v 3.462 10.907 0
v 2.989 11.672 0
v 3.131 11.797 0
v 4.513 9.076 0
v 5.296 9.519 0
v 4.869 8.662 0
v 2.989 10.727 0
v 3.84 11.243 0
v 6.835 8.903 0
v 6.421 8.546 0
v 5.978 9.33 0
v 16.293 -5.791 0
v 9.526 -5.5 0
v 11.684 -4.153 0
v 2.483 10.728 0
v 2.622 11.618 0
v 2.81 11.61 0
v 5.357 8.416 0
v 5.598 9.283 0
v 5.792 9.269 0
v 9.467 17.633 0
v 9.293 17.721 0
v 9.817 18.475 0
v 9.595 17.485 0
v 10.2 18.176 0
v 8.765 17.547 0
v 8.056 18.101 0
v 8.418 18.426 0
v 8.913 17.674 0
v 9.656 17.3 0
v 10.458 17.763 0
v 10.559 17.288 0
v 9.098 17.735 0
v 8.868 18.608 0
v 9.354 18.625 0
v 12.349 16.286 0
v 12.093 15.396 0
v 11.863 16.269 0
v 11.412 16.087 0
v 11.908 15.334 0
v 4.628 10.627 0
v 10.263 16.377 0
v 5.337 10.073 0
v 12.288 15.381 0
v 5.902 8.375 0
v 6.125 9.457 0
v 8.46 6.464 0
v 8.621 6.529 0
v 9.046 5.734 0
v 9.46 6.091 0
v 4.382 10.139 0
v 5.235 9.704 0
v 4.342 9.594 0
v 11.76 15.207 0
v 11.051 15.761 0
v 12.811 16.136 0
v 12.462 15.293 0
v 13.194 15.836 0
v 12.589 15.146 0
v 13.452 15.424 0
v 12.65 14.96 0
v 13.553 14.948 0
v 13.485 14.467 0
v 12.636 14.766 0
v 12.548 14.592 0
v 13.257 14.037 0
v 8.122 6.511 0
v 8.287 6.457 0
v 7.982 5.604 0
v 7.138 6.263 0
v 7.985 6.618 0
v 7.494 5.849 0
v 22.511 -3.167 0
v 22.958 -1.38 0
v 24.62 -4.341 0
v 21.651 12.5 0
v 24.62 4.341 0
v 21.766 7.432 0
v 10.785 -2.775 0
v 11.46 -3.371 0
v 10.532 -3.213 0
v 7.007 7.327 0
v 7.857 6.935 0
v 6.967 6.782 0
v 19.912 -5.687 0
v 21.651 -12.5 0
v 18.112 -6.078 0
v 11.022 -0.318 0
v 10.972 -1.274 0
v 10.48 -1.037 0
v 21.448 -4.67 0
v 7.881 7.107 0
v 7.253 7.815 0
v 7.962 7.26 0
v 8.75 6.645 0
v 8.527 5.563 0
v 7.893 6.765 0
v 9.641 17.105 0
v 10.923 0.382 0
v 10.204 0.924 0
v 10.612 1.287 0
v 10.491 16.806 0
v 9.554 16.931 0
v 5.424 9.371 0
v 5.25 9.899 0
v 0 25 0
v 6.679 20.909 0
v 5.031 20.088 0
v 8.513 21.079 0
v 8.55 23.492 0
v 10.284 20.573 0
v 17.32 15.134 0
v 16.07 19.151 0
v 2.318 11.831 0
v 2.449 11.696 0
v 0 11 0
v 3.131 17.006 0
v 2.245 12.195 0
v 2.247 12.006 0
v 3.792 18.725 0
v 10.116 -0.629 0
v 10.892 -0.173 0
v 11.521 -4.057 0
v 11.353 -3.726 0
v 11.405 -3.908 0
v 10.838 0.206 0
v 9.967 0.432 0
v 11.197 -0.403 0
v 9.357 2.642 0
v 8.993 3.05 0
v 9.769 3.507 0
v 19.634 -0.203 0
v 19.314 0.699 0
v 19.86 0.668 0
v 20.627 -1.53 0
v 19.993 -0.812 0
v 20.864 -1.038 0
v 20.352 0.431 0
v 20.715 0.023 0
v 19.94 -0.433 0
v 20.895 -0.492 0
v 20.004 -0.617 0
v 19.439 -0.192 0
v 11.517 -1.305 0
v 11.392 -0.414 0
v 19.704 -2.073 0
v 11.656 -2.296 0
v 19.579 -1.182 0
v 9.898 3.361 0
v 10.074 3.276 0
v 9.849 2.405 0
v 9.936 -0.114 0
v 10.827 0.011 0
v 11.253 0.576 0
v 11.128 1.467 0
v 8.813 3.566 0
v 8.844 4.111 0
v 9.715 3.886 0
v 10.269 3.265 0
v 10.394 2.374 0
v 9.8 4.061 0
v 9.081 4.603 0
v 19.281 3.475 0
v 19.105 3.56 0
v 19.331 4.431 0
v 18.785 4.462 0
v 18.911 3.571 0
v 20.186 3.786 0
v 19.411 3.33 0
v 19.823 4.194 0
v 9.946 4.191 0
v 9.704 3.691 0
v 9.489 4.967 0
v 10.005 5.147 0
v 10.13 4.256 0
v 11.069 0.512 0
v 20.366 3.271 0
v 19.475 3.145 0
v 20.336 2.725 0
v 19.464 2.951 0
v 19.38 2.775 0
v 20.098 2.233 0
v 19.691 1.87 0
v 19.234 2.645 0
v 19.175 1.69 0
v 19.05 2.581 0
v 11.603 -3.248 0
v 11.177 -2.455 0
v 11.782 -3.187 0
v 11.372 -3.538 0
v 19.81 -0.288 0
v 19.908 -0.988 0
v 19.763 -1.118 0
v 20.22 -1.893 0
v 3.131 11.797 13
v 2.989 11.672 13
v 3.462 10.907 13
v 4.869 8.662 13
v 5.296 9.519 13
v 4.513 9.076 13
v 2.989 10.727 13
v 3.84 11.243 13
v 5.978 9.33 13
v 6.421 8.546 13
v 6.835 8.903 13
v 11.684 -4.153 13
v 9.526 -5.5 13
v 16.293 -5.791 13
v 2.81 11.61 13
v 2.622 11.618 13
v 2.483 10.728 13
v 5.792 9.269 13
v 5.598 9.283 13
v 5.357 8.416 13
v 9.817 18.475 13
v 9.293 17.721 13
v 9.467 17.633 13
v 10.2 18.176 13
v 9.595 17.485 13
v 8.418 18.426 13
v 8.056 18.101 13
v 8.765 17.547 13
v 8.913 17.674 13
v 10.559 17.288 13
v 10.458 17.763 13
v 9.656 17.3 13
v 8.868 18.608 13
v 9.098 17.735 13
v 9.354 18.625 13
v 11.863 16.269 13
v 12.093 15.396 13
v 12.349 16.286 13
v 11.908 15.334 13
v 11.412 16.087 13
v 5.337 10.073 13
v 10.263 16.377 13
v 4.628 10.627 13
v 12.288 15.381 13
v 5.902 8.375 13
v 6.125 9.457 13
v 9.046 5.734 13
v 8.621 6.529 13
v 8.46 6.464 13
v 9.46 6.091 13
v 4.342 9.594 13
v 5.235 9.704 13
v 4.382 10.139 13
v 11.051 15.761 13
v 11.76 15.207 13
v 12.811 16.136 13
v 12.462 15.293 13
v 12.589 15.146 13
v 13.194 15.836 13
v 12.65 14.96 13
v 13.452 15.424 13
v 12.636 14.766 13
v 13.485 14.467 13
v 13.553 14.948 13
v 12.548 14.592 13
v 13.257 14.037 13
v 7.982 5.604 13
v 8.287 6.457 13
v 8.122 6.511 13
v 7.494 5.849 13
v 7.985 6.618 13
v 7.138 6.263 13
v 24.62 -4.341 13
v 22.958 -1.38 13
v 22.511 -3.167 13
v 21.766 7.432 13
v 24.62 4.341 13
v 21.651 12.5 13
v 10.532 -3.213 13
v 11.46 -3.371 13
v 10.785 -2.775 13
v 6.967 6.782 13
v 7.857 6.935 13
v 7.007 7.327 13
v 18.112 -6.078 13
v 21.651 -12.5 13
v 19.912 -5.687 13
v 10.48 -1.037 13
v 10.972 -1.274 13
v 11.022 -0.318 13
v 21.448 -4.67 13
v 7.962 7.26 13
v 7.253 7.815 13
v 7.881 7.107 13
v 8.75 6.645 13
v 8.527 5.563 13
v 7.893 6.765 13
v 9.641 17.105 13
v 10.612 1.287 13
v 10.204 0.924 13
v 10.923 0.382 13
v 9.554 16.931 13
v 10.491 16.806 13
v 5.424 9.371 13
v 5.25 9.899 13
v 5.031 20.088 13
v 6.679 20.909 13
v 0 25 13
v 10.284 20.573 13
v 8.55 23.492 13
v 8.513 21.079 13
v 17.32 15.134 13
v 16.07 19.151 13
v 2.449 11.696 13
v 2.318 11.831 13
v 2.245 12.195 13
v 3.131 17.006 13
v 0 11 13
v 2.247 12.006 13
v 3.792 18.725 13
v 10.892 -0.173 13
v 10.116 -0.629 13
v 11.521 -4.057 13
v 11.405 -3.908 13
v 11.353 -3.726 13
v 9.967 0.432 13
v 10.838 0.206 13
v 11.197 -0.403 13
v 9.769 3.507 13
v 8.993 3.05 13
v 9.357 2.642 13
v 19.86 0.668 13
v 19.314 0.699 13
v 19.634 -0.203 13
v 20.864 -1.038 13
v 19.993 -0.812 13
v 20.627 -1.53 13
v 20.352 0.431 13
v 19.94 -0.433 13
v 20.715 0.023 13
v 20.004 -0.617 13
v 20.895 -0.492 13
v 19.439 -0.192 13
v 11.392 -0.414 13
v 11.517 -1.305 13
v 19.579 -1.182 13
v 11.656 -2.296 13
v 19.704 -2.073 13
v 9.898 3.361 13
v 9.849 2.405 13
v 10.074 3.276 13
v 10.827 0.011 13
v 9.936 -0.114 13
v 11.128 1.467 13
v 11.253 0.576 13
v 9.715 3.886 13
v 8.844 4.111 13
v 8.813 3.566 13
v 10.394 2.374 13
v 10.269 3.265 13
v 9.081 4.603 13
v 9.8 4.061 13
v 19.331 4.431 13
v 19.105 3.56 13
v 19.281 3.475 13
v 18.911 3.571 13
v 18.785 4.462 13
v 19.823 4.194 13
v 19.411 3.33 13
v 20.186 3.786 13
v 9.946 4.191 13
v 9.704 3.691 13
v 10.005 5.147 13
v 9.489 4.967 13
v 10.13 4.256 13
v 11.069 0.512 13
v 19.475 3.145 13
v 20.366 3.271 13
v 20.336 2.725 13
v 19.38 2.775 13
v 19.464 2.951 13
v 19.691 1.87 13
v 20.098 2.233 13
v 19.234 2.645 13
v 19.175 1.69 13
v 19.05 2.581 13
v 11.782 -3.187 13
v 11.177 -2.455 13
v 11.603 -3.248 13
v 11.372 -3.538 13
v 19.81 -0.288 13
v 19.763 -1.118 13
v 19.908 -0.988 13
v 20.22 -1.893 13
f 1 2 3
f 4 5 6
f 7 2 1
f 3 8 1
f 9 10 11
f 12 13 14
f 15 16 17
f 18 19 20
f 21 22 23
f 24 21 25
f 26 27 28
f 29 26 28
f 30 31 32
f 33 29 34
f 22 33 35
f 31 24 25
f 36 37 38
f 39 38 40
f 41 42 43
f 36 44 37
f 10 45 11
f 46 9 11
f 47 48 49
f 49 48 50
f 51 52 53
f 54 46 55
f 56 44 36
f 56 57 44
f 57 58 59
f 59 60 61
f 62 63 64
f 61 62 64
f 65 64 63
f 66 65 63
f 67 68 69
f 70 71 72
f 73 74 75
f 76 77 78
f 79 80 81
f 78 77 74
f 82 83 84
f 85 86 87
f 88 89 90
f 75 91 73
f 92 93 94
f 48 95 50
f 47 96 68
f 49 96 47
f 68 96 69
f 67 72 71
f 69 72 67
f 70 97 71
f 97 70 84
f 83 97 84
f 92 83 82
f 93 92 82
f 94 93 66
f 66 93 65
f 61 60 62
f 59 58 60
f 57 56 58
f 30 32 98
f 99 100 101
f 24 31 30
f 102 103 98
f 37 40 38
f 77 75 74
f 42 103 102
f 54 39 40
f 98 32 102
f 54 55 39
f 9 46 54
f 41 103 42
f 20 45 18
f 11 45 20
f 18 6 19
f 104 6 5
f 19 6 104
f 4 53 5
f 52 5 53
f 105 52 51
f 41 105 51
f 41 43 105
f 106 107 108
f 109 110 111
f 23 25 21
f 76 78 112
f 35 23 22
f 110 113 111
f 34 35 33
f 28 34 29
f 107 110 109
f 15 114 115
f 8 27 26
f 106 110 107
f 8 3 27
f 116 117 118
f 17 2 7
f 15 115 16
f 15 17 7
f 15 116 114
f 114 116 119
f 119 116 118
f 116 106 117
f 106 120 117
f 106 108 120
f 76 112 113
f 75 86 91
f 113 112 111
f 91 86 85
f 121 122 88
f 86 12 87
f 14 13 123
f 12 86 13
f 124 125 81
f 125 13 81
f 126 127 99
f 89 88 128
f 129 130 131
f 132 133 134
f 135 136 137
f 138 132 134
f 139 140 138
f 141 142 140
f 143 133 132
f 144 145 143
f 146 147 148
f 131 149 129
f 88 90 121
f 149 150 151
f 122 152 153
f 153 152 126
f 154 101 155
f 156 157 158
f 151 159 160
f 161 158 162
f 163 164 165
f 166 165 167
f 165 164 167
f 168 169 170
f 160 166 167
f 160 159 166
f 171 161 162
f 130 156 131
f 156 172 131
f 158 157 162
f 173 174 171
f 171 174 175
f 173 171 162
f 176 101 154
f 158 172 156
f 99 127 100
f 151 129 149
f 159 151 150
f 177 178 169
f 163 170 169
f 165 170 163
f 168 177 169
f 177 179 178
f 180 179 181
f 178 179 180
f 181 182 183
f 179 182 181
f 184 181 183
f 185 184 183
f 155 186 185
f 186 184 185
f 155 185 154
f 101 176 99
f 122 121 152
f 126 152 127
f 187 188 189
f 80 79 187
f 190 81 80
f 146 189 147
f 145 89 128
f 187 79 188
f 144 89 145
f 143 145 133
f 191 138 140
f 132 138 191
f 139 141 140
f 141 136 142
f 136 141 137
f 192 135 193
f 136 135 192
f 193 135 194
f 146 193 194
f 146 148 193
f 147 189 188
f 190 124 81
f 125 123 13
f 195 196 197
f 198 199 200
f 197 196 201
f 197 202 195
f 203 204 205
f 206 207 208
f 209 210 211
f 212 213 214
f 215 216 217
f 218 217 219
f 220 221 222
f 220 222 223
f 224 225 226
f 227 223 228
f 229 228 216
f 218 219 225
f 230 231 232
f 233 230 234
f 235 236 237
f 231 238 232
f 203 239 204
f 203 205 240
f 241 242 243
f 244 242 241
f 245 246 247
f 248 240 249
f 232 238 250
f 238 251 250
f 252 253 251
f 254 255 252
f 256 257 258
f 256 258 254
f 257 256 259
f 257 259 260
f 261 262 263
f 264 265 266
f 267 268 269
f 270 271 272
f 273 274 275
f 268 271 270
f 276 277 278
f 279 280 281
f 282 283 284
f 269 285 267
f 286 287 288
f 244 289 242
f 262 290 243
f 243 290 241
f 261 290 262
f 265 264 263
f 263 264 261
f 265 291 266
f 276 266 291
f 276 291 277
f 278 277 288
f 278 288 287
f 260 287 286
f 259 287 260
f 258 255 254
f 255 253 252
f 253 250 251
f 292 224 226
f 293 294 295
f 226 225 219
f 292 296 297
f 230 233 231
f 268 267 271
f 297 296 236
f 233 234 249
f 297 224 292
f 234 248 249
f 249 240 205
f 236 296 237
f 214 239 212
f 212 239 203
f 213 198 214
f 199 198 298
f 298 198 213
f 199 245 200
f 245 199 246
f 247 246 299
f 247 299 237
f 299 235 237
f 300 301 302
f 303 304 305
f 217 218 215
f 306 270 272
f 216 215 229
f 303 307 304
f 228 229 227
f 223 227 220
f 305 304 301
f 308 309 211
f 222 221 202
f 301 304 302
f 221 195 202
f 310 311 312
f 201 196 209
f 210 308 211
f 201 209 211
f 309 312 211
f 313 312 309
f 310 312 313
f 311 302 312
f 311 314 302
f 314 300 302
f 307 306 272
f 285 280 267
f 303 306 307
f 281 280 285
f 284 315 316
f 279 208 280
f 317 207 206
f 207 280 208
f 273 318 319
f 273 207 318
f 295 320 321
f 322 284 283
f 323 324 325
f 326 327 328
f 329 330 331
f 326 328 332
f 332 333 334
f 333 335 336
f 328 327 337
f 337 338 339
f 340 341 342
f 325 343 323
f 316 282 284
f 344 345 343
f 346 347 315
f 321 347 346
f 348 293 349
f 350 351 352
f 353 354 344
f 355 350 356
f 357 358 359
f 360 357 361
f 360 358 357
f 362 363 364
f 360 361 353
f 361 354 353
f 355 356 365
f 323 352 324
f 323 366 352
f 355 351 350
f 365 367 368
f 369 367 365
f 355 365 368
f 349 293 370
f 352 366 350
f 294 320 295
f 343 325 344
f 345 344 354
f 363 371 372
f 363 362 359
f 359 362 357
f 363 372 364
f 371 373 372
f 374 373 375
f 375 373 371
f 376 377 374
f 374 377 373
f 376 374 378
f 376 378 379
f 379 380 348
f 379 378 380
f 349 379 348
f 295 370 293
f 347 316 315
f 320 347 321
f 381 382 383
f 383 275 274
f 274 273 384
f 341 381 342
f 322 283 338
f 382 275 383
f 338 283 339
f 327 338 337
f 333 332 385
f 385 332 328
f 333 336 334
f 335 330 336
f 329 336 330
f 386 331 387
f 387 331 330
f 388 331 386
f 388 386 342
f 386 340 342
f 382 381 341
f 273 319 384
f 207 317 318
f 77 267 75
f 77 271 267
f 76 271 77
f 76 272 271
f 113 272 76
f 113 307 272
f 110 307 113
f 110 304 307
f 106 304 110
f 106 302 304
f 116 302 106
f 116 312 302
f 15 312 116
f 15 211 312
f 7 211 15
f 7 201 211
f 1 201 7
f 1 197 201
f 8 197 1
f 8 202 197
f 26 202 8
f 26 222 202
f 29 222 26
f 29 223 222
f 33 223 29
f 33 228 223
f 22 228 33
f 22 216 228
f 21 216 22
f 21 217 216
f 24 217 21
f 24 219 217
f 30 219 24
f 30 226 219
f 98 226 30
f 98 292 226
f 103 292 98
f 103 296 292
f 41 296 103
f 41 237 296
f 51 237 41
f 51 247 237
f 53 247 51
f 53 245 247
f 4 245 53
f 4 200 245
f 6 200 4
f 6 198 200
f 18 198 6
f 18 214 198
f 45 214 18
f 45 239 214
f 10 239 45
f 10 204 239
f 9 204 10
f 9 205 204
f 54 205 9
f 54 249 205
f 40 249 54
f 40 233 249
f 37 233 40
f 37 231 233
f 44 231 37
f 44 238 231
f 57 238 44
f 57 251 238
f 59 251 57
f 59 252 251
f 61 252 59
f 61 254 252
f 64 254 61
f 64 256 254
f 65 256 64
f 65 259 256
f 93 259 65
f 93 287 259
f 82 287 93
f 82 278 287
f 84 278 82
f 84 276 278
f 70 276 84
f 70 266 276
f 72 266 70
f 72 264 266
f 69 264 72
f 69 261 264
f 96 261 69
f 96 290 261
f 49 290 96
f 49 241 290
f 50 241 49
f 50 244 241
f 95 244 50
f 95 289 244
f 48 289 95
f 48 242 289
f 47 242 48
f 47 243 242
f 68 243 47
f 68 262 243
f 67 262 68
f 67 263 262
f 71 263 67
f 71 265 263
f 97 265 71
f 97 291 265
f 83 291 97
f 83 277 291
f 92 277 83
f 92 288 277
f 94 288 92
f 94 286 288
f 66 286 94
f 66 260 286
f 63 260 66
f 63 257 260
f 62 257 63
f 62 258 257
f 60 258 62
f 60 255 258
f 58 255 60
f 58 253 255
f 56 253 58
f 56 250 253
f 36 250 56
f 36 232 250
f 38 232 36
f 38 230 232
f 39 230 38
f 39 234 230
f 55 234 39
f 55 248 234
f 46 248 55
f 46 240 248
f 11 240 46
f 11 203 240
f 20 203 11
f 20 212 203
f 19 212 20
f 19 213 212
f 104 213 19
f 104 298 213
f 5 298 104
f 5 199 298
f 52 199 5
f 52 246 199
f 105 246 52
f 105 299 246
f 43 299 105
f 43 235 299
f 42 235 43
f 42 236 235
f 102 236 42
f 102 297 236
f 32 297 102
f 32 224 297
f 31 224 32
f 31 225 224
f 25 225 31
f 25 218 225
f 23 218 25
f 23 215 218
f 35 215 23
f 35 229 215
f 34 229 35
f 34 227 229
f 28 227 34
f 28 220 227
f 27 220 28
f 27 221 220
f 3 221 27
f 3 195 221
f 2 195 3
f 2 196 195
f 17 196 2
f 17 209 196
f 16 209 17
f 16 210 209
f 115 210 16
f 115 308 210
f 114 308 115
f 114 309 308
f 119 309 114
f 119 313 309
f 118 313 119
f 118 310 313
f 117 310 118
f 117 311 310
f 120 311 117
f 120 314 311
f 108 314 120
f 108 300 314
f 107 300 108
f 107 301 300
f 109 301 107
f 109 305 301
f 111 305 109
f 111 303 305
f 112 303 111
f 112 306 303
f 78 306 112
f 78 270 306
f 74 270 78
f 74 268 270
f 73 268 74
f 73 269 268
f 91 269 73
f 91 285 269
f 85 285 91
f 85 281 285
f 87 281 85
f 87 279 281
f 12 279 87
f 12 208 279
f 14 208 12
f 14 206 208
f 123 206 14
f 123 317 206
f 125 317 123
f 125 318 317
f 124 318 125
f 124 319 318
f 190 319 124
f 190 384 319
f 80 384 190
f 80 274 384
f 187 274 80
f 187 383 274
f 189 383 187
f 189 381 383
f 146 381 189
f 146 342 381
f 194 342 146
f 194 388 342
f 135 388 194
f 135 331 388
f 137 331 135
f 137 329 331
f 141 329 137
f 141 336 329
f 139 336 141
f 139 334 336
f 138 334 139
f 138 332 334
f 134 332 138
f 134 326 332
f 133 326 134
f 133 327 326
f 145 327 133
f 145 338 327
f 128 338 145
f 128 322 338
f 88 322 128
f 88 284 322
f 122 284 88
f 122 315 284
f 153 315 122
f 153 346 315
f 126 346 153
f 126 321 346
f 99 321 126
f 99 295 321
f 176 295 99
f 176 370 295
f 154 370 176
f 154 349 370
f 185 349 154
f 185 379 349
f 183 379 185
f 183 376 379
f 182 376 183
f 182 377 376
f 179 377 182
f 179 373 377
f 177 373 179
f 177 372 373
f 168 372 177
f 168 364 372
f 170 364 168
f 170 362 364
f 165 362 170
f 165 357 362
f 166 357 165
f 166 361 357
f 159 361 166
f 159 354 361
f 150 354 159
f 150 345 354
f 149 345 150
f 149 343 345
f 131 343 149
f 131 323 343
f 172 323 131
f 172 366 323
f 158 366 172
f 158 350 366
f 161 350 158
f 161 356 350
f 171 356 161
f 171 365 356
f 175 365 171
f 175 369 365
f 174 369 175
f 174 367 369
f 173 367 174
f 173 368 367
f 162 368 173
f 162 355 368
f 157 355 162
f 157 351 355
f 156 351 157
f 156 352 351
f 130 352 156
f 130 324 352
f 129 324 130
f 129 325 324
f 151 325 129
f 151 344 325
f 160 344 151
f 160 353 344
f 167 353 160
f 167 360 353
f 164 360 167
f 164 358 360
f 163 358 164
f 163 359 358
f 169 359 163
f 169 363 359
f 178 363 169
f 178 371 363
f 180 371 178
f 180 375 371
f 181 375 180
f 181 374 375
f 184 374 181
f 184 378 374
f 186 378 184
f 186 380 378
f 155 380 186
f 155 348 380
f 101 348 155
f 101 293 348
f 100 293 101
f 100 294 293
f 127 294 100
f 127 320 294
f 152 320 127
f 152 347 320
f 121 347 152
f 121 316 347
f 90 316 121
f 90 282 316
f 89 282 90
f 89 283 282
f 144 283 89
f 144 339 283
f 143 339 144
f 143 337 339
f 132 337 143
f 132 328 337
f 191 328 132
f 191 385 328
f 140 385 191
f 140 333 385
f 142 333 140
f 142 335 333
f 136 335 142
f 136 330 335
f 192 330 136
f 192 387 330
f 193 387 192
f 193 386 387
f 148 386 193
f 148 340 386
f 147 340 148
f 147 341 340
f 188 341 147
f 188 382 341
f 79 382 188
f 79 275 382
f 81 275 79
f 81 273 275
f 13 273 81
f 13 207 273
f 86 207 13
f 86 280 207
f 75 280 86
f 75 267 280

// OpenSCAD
// Generated by Parametrix
ca_haxis_guidance_faceProfile_0 = [ [ 0.0000, 11.0000 ],[ 2.4835, 10.7276 ],[ 2.9892, 10.7274 ],[ 3.4620, 10.9069 ],[ 3.8402, 11.2426 ],[ 8.7655, 17.5467 ],[ 8.9132, 17.6740 ],[ 9.0985, 17.7351 ],[ 9.2931, 17.7207 ],[ 9.4673, 17.6328 ],[ 9.5946, 17.4850 ],[ 9.6557, 17.2998 ],[ 9.6413, 17.1052 ],[ 9.5535, 16.9310 ],[ 4.6282, 10.6269 ],[ 4.3823, 10.1391 ],[ 4.3418, 9.5944 ],[ 4.5129, 9.0756 ],[ 4.8695, 8.6618 ],[ 5.3573, 8.4159 ],[ 5.9020, 8.3754 ],[ 6.4208, 8.5465 ],[ 6.8346, 8.9031 ],[ 11.7599, 15.2072 ],[ 11.9077, 15.3345 ],[ 12.0930, 15.3956 ],[ 12.2875, 15.3811 ],[ 12.4617, 15.2933 ],[ 12.5891, 15.1455 ],[ 12.6502, 14.9603 ],[ 12.6357, 14.7657 ],[ 12.5479, 14.5915 ],[ 7.2532, 7.8146 ],[ 7.0073, 7.3268 ],[ 6.9669, 6.7821 ],[ 7.1379, 6.2633 ],[ 7.4945, 5.8495 ],[ 7.9823, 5.6036 ],[ 8.5270, 5.5631 ],[ 9.0458, 5.7342 ],[ 9.4596, 6.0907 ],[ 8.7504, 6.6448 ],[ 8.6214, 6.5287 ],[ 8.4604, 6.4636 ],[ 8.2868, 6.4575 ],[ 8.1217, 6.5112 ],[ 7.9849, 6.6181 ],[ 7.8928, 6.7654 ],[ 7.8567, 6.9352 ],[ 7.8809, 7.1072 ],[ 7.9624, 7.2605 ],[ 13.2571, 14.0374 ],[ 13.4854, 14.4667 ],[ 13.5530, 14.9482 ],[ 13.4520, 15.4238 ],[ 13.1943, 15.8361 ],[ 12.8112, 16.1355 ],[ 12.3487, 16.2857 ],[ 11.8628, 16.2687 ],[ 11.4120, 16.0866 ],[ 11.0507, 15.7613 ],[ 6.1254, 9.4572 ],[ 5.9776, 9.3298 ],[ 5.7923, 9.2687 ],[ 5.5978, 9.2832 ],[ 5.4236, 9.3710 ],[ 5.2962, 9.5188 ],[ 5.2351, 9.7041 ],[ 5.2496, 9.8986 ],[ 5.3374, 10.0728 ],[ 10.2627, 16.3769 ],[ 10.4909, 16.8062 ],[ 10.5586, 17.2877 ],[ 10.4575, 17.7633 ],[ 10.1999, 18.1756 ],[ 9.8167, 18.4750 ],[ 9.3543, 18.6252 ],[ 8.8684, 18.6082 ],[ 8.4176, 18.4261 ],[ 8.0562, 18.1008 ],[ 3.1310, 11.7967 ],[ 2.9886, 11.6725 ],[ 2.8104, 11.6099 ],[ 2.6217, 11.6180 ],[ 2.4494, 11.6955 ],[ 2.3182, 11.8313 ],[ 2.2467, 12.0062 ],[ 2.2452, 12.1950 ],[ 3.1309, 17.0058 ],[ 3.7923, 18.7247 ],[ 5.0310, 20.0875 ],[ 6.6792, 20.9094 ],[ 8.5131, 21.0788 ],[ 10.2839, 20.5728 ],[ 17.3196, 15.1338 ],[ 21.7660, 7.4323 ],[ 22.9585, -1.3803 ],[ 22.5113, -3.1669 ],[ 21.4476, -4.6704 ],[ 19.9118, -5.6867 ],[ 18.1122, -6.0781 ],[ 16.2929, -5.7915 ],[ 11.6838, -4.1531 ],[ 11.5210, -4.0574 ],[ 11.4053, -3.9081 ],[ 11.3533, -3.7265 ],[ 11.3723, -3.5385 ],[ 11.4597, -3.3711 ],[ 11.6030, -3.2480 ],[ 11.7817, -3.1869 ],[ 19.7038, -2.0735 ],[ 20.2196, -1.8934 ],[ 20.6271, -1.5296 ],[ 20.8644, -1.0376 ],[ 20.8954, -0.4923 ],[ 20.7153, 0.0235 ],[ 20.3515, 0.4310 ],[ 19.8595, 0.6683 ],[ 19.3142, 0.6993 ],[ 11.3920, -0.4141 ],[ 11.1972, -0.4030 ],[ 11.0215, -0.3183 ],[ 10.8916, -0.1727 ],[ 10.8273, 0.0114 ],[ 10.8384, 0.2062 ],[ 10.9231, 0.3819 ],[ 11.0687, 0.5118 ],[ 11.2528, 0.5762 ],[ 19.1750, 1.6895 ],[ 19.6907, 1.8696 ],[ 20.0982, 2.2334 ],[ 20.3355, 2.7254 ],[ 20.3665, 3.2708 ],[ 20.1864, 3.7865 ],[ 19.8227, 4.1940 ],[ 19.3307, 4.4313 ],[ 18.7853, 4.4623 ],[ 10.2690, 3.2654 ],[ 10.0742, 3.2765 ],[ 9.8985, 3.3612 ],[ 9.7686, 3.5068 ],[ 9.7043, 3.6910 ],[ 9.7153, 3.8857 ],[ 9.8001, 4.0615 ],[ 9.9456, 4.1914 ],[ 10.1298, 4.2557 ],[ 10.0046, 5.1469 ],[ 9.4889, 4.9668 ],[ 9.0813, 4.6031 ],[ 8.8440, 4.1111 ],[ 8.8130, 3.5657 ],[ 8.9931, 3.0500 ],[ 9.3569, 2.6425 ],[ 9.8489, 2.4051 ],[ 10.3943, 2.3742 ],[ 18.9106, 3.5711 ],[ 19.1053, 3.5600 ],[ 19.2811, 3.4752 ],[ 19.4110, 3.3297 ],[ 19.4753, 3.1455 ],[ 19.4642, 2.9507 ],[ 19.3795, 2.7750 ],[ 19.2339, 2.6451 ],[ 19.0497, 2.5808 ],[ 11.1276, 1.4674 ],[ 10.6119, 1.2873 ],[ 10.2043, 0.9236 ],[ 9.9670, 0.4316 ],[ 9.9361, -0.1138 ],[ 10.1161, -0.6295 ],[ 10.4799, -1.0371 ],[ 10.9719, -1.2744 ],[ 11.5173, -1.3053 ],[ 19.4394, -0.1920 ],[ 19.6342, -0.2030 ],[ 19.8099, -0.2878 ],[ 19.9398, -0.4333 ],[ 20.0041, -0.6175 ],[ 19.9931, -0.8123 ],[ 19.9083, -0.9880 ],[ 19.7628, -1.1179 ],[ 19.5786, -1.1822 ],[ 11.6564, -2.2956 ],[ 11.1766, -2.4553 ],[ 10.7848, -2.7750 ],[ 10.5321, -3.2131 ],[ 9.5263, -5.5000 ],[ 21.6506, -12.5000 ],[ 24.6202, -4.3412 ],[ 24.6202, 4.3412 ],[ 21.6506, 12.5000 ],[ 16.0697, 19.1511 ],[ 8.5505, 23.4923 ],[ 0.0000, 25.0000 ],[ 0.0000, 11.0000 ] ];
cb_haxis_guidance_faceProfile_0 = [  0, 1, 2, 3, 4, 5, 6, 7, 8, 9, 10, 11, 12, 13, 14, 15, 16, 17, 18, 19, 20, 21, 22, 23, 24, 25, 26, 27, 28, 29, 30, 31, 32, 33, 34, 35, 36, 37, 38, 39, 40, 41, 42, 43, 44, 45, 46, 47, 48, 49, 50, 51, 52, 53, 54, 55, 56, 57, 58, 59, 60, 61, 62, 63, 64, 65, 66, 67, 68, 69, 70, 71, 72, 73, 74, 75, 76, 77, 78, 79, 80, 81, 82, 83, 84, 85, 86, 87, 88, 89, 90, 91, 92, 93, 94, 95, 96, 97, 98, 99, 100, 101, 102, 103, 104, 105, 106, 107, 108, 109, 110, 111, 112, 113, 114, 115, 116, 117, 118, 119, 120, 121, 122, 123, 124, 125, 126, 127, 128, 129, 130, 131, 132, 133, 134, 135, 136, 137, 138, 139, 140, 141, 142, 143, 144, 145, 146, 147, 148, 149, 150, 151, 152, 153, 154, 155, 156, 157, 158, 159, 160, 161, 162, 163, 164, 165, 166, 167, 168, 169, 170, 171, 172, 173, 174, 175, 176, 177, 178, 179, 180, 181, 182, 183, 184, 185, 186, 187, 188, 189, 190, 191, 192, 193, 194 ];
a_haxis_guidance_faceProfile = concat(ca_haxis_guidance_faceProfile_0);
b_haxis_guidance_faceProfile = [cb_haxis_guidance_faceProfile_0];
ca_haxis_guidance_faceSide_0 = [ [ 0.0000, -12.5000 ],[ 13.0000, -12.5000 ],[ 13.0000, 25.0000 ],[ 0.0000, 25.0000 ],[ 0.0000, -12.5000 ] ];
cb_haxis_guidance_faceSide_0 = [  0, 1, 2, 3, 4 ];
a_haxis_guidance_faceSide = concat(ca_haxis_guidance_faceSide_0);
b_haxis_guidance_faceSide = [cb_haxis_guidance_faceSide_0];

module subpax_haxis_guidance_profile () {
	translate( [ 0, 0, 0 ])
		rotate( [ 0, 0, 0 ])
			   linear_extrude(height = 13) polygon(a_haxis_guidance_faceProfile, b_haxis_guidance_faceProfile);
}

module pax_haxis_guidance () {
	subpax_haxis_guidance_profile();
}

pax_haxis_guidance();
